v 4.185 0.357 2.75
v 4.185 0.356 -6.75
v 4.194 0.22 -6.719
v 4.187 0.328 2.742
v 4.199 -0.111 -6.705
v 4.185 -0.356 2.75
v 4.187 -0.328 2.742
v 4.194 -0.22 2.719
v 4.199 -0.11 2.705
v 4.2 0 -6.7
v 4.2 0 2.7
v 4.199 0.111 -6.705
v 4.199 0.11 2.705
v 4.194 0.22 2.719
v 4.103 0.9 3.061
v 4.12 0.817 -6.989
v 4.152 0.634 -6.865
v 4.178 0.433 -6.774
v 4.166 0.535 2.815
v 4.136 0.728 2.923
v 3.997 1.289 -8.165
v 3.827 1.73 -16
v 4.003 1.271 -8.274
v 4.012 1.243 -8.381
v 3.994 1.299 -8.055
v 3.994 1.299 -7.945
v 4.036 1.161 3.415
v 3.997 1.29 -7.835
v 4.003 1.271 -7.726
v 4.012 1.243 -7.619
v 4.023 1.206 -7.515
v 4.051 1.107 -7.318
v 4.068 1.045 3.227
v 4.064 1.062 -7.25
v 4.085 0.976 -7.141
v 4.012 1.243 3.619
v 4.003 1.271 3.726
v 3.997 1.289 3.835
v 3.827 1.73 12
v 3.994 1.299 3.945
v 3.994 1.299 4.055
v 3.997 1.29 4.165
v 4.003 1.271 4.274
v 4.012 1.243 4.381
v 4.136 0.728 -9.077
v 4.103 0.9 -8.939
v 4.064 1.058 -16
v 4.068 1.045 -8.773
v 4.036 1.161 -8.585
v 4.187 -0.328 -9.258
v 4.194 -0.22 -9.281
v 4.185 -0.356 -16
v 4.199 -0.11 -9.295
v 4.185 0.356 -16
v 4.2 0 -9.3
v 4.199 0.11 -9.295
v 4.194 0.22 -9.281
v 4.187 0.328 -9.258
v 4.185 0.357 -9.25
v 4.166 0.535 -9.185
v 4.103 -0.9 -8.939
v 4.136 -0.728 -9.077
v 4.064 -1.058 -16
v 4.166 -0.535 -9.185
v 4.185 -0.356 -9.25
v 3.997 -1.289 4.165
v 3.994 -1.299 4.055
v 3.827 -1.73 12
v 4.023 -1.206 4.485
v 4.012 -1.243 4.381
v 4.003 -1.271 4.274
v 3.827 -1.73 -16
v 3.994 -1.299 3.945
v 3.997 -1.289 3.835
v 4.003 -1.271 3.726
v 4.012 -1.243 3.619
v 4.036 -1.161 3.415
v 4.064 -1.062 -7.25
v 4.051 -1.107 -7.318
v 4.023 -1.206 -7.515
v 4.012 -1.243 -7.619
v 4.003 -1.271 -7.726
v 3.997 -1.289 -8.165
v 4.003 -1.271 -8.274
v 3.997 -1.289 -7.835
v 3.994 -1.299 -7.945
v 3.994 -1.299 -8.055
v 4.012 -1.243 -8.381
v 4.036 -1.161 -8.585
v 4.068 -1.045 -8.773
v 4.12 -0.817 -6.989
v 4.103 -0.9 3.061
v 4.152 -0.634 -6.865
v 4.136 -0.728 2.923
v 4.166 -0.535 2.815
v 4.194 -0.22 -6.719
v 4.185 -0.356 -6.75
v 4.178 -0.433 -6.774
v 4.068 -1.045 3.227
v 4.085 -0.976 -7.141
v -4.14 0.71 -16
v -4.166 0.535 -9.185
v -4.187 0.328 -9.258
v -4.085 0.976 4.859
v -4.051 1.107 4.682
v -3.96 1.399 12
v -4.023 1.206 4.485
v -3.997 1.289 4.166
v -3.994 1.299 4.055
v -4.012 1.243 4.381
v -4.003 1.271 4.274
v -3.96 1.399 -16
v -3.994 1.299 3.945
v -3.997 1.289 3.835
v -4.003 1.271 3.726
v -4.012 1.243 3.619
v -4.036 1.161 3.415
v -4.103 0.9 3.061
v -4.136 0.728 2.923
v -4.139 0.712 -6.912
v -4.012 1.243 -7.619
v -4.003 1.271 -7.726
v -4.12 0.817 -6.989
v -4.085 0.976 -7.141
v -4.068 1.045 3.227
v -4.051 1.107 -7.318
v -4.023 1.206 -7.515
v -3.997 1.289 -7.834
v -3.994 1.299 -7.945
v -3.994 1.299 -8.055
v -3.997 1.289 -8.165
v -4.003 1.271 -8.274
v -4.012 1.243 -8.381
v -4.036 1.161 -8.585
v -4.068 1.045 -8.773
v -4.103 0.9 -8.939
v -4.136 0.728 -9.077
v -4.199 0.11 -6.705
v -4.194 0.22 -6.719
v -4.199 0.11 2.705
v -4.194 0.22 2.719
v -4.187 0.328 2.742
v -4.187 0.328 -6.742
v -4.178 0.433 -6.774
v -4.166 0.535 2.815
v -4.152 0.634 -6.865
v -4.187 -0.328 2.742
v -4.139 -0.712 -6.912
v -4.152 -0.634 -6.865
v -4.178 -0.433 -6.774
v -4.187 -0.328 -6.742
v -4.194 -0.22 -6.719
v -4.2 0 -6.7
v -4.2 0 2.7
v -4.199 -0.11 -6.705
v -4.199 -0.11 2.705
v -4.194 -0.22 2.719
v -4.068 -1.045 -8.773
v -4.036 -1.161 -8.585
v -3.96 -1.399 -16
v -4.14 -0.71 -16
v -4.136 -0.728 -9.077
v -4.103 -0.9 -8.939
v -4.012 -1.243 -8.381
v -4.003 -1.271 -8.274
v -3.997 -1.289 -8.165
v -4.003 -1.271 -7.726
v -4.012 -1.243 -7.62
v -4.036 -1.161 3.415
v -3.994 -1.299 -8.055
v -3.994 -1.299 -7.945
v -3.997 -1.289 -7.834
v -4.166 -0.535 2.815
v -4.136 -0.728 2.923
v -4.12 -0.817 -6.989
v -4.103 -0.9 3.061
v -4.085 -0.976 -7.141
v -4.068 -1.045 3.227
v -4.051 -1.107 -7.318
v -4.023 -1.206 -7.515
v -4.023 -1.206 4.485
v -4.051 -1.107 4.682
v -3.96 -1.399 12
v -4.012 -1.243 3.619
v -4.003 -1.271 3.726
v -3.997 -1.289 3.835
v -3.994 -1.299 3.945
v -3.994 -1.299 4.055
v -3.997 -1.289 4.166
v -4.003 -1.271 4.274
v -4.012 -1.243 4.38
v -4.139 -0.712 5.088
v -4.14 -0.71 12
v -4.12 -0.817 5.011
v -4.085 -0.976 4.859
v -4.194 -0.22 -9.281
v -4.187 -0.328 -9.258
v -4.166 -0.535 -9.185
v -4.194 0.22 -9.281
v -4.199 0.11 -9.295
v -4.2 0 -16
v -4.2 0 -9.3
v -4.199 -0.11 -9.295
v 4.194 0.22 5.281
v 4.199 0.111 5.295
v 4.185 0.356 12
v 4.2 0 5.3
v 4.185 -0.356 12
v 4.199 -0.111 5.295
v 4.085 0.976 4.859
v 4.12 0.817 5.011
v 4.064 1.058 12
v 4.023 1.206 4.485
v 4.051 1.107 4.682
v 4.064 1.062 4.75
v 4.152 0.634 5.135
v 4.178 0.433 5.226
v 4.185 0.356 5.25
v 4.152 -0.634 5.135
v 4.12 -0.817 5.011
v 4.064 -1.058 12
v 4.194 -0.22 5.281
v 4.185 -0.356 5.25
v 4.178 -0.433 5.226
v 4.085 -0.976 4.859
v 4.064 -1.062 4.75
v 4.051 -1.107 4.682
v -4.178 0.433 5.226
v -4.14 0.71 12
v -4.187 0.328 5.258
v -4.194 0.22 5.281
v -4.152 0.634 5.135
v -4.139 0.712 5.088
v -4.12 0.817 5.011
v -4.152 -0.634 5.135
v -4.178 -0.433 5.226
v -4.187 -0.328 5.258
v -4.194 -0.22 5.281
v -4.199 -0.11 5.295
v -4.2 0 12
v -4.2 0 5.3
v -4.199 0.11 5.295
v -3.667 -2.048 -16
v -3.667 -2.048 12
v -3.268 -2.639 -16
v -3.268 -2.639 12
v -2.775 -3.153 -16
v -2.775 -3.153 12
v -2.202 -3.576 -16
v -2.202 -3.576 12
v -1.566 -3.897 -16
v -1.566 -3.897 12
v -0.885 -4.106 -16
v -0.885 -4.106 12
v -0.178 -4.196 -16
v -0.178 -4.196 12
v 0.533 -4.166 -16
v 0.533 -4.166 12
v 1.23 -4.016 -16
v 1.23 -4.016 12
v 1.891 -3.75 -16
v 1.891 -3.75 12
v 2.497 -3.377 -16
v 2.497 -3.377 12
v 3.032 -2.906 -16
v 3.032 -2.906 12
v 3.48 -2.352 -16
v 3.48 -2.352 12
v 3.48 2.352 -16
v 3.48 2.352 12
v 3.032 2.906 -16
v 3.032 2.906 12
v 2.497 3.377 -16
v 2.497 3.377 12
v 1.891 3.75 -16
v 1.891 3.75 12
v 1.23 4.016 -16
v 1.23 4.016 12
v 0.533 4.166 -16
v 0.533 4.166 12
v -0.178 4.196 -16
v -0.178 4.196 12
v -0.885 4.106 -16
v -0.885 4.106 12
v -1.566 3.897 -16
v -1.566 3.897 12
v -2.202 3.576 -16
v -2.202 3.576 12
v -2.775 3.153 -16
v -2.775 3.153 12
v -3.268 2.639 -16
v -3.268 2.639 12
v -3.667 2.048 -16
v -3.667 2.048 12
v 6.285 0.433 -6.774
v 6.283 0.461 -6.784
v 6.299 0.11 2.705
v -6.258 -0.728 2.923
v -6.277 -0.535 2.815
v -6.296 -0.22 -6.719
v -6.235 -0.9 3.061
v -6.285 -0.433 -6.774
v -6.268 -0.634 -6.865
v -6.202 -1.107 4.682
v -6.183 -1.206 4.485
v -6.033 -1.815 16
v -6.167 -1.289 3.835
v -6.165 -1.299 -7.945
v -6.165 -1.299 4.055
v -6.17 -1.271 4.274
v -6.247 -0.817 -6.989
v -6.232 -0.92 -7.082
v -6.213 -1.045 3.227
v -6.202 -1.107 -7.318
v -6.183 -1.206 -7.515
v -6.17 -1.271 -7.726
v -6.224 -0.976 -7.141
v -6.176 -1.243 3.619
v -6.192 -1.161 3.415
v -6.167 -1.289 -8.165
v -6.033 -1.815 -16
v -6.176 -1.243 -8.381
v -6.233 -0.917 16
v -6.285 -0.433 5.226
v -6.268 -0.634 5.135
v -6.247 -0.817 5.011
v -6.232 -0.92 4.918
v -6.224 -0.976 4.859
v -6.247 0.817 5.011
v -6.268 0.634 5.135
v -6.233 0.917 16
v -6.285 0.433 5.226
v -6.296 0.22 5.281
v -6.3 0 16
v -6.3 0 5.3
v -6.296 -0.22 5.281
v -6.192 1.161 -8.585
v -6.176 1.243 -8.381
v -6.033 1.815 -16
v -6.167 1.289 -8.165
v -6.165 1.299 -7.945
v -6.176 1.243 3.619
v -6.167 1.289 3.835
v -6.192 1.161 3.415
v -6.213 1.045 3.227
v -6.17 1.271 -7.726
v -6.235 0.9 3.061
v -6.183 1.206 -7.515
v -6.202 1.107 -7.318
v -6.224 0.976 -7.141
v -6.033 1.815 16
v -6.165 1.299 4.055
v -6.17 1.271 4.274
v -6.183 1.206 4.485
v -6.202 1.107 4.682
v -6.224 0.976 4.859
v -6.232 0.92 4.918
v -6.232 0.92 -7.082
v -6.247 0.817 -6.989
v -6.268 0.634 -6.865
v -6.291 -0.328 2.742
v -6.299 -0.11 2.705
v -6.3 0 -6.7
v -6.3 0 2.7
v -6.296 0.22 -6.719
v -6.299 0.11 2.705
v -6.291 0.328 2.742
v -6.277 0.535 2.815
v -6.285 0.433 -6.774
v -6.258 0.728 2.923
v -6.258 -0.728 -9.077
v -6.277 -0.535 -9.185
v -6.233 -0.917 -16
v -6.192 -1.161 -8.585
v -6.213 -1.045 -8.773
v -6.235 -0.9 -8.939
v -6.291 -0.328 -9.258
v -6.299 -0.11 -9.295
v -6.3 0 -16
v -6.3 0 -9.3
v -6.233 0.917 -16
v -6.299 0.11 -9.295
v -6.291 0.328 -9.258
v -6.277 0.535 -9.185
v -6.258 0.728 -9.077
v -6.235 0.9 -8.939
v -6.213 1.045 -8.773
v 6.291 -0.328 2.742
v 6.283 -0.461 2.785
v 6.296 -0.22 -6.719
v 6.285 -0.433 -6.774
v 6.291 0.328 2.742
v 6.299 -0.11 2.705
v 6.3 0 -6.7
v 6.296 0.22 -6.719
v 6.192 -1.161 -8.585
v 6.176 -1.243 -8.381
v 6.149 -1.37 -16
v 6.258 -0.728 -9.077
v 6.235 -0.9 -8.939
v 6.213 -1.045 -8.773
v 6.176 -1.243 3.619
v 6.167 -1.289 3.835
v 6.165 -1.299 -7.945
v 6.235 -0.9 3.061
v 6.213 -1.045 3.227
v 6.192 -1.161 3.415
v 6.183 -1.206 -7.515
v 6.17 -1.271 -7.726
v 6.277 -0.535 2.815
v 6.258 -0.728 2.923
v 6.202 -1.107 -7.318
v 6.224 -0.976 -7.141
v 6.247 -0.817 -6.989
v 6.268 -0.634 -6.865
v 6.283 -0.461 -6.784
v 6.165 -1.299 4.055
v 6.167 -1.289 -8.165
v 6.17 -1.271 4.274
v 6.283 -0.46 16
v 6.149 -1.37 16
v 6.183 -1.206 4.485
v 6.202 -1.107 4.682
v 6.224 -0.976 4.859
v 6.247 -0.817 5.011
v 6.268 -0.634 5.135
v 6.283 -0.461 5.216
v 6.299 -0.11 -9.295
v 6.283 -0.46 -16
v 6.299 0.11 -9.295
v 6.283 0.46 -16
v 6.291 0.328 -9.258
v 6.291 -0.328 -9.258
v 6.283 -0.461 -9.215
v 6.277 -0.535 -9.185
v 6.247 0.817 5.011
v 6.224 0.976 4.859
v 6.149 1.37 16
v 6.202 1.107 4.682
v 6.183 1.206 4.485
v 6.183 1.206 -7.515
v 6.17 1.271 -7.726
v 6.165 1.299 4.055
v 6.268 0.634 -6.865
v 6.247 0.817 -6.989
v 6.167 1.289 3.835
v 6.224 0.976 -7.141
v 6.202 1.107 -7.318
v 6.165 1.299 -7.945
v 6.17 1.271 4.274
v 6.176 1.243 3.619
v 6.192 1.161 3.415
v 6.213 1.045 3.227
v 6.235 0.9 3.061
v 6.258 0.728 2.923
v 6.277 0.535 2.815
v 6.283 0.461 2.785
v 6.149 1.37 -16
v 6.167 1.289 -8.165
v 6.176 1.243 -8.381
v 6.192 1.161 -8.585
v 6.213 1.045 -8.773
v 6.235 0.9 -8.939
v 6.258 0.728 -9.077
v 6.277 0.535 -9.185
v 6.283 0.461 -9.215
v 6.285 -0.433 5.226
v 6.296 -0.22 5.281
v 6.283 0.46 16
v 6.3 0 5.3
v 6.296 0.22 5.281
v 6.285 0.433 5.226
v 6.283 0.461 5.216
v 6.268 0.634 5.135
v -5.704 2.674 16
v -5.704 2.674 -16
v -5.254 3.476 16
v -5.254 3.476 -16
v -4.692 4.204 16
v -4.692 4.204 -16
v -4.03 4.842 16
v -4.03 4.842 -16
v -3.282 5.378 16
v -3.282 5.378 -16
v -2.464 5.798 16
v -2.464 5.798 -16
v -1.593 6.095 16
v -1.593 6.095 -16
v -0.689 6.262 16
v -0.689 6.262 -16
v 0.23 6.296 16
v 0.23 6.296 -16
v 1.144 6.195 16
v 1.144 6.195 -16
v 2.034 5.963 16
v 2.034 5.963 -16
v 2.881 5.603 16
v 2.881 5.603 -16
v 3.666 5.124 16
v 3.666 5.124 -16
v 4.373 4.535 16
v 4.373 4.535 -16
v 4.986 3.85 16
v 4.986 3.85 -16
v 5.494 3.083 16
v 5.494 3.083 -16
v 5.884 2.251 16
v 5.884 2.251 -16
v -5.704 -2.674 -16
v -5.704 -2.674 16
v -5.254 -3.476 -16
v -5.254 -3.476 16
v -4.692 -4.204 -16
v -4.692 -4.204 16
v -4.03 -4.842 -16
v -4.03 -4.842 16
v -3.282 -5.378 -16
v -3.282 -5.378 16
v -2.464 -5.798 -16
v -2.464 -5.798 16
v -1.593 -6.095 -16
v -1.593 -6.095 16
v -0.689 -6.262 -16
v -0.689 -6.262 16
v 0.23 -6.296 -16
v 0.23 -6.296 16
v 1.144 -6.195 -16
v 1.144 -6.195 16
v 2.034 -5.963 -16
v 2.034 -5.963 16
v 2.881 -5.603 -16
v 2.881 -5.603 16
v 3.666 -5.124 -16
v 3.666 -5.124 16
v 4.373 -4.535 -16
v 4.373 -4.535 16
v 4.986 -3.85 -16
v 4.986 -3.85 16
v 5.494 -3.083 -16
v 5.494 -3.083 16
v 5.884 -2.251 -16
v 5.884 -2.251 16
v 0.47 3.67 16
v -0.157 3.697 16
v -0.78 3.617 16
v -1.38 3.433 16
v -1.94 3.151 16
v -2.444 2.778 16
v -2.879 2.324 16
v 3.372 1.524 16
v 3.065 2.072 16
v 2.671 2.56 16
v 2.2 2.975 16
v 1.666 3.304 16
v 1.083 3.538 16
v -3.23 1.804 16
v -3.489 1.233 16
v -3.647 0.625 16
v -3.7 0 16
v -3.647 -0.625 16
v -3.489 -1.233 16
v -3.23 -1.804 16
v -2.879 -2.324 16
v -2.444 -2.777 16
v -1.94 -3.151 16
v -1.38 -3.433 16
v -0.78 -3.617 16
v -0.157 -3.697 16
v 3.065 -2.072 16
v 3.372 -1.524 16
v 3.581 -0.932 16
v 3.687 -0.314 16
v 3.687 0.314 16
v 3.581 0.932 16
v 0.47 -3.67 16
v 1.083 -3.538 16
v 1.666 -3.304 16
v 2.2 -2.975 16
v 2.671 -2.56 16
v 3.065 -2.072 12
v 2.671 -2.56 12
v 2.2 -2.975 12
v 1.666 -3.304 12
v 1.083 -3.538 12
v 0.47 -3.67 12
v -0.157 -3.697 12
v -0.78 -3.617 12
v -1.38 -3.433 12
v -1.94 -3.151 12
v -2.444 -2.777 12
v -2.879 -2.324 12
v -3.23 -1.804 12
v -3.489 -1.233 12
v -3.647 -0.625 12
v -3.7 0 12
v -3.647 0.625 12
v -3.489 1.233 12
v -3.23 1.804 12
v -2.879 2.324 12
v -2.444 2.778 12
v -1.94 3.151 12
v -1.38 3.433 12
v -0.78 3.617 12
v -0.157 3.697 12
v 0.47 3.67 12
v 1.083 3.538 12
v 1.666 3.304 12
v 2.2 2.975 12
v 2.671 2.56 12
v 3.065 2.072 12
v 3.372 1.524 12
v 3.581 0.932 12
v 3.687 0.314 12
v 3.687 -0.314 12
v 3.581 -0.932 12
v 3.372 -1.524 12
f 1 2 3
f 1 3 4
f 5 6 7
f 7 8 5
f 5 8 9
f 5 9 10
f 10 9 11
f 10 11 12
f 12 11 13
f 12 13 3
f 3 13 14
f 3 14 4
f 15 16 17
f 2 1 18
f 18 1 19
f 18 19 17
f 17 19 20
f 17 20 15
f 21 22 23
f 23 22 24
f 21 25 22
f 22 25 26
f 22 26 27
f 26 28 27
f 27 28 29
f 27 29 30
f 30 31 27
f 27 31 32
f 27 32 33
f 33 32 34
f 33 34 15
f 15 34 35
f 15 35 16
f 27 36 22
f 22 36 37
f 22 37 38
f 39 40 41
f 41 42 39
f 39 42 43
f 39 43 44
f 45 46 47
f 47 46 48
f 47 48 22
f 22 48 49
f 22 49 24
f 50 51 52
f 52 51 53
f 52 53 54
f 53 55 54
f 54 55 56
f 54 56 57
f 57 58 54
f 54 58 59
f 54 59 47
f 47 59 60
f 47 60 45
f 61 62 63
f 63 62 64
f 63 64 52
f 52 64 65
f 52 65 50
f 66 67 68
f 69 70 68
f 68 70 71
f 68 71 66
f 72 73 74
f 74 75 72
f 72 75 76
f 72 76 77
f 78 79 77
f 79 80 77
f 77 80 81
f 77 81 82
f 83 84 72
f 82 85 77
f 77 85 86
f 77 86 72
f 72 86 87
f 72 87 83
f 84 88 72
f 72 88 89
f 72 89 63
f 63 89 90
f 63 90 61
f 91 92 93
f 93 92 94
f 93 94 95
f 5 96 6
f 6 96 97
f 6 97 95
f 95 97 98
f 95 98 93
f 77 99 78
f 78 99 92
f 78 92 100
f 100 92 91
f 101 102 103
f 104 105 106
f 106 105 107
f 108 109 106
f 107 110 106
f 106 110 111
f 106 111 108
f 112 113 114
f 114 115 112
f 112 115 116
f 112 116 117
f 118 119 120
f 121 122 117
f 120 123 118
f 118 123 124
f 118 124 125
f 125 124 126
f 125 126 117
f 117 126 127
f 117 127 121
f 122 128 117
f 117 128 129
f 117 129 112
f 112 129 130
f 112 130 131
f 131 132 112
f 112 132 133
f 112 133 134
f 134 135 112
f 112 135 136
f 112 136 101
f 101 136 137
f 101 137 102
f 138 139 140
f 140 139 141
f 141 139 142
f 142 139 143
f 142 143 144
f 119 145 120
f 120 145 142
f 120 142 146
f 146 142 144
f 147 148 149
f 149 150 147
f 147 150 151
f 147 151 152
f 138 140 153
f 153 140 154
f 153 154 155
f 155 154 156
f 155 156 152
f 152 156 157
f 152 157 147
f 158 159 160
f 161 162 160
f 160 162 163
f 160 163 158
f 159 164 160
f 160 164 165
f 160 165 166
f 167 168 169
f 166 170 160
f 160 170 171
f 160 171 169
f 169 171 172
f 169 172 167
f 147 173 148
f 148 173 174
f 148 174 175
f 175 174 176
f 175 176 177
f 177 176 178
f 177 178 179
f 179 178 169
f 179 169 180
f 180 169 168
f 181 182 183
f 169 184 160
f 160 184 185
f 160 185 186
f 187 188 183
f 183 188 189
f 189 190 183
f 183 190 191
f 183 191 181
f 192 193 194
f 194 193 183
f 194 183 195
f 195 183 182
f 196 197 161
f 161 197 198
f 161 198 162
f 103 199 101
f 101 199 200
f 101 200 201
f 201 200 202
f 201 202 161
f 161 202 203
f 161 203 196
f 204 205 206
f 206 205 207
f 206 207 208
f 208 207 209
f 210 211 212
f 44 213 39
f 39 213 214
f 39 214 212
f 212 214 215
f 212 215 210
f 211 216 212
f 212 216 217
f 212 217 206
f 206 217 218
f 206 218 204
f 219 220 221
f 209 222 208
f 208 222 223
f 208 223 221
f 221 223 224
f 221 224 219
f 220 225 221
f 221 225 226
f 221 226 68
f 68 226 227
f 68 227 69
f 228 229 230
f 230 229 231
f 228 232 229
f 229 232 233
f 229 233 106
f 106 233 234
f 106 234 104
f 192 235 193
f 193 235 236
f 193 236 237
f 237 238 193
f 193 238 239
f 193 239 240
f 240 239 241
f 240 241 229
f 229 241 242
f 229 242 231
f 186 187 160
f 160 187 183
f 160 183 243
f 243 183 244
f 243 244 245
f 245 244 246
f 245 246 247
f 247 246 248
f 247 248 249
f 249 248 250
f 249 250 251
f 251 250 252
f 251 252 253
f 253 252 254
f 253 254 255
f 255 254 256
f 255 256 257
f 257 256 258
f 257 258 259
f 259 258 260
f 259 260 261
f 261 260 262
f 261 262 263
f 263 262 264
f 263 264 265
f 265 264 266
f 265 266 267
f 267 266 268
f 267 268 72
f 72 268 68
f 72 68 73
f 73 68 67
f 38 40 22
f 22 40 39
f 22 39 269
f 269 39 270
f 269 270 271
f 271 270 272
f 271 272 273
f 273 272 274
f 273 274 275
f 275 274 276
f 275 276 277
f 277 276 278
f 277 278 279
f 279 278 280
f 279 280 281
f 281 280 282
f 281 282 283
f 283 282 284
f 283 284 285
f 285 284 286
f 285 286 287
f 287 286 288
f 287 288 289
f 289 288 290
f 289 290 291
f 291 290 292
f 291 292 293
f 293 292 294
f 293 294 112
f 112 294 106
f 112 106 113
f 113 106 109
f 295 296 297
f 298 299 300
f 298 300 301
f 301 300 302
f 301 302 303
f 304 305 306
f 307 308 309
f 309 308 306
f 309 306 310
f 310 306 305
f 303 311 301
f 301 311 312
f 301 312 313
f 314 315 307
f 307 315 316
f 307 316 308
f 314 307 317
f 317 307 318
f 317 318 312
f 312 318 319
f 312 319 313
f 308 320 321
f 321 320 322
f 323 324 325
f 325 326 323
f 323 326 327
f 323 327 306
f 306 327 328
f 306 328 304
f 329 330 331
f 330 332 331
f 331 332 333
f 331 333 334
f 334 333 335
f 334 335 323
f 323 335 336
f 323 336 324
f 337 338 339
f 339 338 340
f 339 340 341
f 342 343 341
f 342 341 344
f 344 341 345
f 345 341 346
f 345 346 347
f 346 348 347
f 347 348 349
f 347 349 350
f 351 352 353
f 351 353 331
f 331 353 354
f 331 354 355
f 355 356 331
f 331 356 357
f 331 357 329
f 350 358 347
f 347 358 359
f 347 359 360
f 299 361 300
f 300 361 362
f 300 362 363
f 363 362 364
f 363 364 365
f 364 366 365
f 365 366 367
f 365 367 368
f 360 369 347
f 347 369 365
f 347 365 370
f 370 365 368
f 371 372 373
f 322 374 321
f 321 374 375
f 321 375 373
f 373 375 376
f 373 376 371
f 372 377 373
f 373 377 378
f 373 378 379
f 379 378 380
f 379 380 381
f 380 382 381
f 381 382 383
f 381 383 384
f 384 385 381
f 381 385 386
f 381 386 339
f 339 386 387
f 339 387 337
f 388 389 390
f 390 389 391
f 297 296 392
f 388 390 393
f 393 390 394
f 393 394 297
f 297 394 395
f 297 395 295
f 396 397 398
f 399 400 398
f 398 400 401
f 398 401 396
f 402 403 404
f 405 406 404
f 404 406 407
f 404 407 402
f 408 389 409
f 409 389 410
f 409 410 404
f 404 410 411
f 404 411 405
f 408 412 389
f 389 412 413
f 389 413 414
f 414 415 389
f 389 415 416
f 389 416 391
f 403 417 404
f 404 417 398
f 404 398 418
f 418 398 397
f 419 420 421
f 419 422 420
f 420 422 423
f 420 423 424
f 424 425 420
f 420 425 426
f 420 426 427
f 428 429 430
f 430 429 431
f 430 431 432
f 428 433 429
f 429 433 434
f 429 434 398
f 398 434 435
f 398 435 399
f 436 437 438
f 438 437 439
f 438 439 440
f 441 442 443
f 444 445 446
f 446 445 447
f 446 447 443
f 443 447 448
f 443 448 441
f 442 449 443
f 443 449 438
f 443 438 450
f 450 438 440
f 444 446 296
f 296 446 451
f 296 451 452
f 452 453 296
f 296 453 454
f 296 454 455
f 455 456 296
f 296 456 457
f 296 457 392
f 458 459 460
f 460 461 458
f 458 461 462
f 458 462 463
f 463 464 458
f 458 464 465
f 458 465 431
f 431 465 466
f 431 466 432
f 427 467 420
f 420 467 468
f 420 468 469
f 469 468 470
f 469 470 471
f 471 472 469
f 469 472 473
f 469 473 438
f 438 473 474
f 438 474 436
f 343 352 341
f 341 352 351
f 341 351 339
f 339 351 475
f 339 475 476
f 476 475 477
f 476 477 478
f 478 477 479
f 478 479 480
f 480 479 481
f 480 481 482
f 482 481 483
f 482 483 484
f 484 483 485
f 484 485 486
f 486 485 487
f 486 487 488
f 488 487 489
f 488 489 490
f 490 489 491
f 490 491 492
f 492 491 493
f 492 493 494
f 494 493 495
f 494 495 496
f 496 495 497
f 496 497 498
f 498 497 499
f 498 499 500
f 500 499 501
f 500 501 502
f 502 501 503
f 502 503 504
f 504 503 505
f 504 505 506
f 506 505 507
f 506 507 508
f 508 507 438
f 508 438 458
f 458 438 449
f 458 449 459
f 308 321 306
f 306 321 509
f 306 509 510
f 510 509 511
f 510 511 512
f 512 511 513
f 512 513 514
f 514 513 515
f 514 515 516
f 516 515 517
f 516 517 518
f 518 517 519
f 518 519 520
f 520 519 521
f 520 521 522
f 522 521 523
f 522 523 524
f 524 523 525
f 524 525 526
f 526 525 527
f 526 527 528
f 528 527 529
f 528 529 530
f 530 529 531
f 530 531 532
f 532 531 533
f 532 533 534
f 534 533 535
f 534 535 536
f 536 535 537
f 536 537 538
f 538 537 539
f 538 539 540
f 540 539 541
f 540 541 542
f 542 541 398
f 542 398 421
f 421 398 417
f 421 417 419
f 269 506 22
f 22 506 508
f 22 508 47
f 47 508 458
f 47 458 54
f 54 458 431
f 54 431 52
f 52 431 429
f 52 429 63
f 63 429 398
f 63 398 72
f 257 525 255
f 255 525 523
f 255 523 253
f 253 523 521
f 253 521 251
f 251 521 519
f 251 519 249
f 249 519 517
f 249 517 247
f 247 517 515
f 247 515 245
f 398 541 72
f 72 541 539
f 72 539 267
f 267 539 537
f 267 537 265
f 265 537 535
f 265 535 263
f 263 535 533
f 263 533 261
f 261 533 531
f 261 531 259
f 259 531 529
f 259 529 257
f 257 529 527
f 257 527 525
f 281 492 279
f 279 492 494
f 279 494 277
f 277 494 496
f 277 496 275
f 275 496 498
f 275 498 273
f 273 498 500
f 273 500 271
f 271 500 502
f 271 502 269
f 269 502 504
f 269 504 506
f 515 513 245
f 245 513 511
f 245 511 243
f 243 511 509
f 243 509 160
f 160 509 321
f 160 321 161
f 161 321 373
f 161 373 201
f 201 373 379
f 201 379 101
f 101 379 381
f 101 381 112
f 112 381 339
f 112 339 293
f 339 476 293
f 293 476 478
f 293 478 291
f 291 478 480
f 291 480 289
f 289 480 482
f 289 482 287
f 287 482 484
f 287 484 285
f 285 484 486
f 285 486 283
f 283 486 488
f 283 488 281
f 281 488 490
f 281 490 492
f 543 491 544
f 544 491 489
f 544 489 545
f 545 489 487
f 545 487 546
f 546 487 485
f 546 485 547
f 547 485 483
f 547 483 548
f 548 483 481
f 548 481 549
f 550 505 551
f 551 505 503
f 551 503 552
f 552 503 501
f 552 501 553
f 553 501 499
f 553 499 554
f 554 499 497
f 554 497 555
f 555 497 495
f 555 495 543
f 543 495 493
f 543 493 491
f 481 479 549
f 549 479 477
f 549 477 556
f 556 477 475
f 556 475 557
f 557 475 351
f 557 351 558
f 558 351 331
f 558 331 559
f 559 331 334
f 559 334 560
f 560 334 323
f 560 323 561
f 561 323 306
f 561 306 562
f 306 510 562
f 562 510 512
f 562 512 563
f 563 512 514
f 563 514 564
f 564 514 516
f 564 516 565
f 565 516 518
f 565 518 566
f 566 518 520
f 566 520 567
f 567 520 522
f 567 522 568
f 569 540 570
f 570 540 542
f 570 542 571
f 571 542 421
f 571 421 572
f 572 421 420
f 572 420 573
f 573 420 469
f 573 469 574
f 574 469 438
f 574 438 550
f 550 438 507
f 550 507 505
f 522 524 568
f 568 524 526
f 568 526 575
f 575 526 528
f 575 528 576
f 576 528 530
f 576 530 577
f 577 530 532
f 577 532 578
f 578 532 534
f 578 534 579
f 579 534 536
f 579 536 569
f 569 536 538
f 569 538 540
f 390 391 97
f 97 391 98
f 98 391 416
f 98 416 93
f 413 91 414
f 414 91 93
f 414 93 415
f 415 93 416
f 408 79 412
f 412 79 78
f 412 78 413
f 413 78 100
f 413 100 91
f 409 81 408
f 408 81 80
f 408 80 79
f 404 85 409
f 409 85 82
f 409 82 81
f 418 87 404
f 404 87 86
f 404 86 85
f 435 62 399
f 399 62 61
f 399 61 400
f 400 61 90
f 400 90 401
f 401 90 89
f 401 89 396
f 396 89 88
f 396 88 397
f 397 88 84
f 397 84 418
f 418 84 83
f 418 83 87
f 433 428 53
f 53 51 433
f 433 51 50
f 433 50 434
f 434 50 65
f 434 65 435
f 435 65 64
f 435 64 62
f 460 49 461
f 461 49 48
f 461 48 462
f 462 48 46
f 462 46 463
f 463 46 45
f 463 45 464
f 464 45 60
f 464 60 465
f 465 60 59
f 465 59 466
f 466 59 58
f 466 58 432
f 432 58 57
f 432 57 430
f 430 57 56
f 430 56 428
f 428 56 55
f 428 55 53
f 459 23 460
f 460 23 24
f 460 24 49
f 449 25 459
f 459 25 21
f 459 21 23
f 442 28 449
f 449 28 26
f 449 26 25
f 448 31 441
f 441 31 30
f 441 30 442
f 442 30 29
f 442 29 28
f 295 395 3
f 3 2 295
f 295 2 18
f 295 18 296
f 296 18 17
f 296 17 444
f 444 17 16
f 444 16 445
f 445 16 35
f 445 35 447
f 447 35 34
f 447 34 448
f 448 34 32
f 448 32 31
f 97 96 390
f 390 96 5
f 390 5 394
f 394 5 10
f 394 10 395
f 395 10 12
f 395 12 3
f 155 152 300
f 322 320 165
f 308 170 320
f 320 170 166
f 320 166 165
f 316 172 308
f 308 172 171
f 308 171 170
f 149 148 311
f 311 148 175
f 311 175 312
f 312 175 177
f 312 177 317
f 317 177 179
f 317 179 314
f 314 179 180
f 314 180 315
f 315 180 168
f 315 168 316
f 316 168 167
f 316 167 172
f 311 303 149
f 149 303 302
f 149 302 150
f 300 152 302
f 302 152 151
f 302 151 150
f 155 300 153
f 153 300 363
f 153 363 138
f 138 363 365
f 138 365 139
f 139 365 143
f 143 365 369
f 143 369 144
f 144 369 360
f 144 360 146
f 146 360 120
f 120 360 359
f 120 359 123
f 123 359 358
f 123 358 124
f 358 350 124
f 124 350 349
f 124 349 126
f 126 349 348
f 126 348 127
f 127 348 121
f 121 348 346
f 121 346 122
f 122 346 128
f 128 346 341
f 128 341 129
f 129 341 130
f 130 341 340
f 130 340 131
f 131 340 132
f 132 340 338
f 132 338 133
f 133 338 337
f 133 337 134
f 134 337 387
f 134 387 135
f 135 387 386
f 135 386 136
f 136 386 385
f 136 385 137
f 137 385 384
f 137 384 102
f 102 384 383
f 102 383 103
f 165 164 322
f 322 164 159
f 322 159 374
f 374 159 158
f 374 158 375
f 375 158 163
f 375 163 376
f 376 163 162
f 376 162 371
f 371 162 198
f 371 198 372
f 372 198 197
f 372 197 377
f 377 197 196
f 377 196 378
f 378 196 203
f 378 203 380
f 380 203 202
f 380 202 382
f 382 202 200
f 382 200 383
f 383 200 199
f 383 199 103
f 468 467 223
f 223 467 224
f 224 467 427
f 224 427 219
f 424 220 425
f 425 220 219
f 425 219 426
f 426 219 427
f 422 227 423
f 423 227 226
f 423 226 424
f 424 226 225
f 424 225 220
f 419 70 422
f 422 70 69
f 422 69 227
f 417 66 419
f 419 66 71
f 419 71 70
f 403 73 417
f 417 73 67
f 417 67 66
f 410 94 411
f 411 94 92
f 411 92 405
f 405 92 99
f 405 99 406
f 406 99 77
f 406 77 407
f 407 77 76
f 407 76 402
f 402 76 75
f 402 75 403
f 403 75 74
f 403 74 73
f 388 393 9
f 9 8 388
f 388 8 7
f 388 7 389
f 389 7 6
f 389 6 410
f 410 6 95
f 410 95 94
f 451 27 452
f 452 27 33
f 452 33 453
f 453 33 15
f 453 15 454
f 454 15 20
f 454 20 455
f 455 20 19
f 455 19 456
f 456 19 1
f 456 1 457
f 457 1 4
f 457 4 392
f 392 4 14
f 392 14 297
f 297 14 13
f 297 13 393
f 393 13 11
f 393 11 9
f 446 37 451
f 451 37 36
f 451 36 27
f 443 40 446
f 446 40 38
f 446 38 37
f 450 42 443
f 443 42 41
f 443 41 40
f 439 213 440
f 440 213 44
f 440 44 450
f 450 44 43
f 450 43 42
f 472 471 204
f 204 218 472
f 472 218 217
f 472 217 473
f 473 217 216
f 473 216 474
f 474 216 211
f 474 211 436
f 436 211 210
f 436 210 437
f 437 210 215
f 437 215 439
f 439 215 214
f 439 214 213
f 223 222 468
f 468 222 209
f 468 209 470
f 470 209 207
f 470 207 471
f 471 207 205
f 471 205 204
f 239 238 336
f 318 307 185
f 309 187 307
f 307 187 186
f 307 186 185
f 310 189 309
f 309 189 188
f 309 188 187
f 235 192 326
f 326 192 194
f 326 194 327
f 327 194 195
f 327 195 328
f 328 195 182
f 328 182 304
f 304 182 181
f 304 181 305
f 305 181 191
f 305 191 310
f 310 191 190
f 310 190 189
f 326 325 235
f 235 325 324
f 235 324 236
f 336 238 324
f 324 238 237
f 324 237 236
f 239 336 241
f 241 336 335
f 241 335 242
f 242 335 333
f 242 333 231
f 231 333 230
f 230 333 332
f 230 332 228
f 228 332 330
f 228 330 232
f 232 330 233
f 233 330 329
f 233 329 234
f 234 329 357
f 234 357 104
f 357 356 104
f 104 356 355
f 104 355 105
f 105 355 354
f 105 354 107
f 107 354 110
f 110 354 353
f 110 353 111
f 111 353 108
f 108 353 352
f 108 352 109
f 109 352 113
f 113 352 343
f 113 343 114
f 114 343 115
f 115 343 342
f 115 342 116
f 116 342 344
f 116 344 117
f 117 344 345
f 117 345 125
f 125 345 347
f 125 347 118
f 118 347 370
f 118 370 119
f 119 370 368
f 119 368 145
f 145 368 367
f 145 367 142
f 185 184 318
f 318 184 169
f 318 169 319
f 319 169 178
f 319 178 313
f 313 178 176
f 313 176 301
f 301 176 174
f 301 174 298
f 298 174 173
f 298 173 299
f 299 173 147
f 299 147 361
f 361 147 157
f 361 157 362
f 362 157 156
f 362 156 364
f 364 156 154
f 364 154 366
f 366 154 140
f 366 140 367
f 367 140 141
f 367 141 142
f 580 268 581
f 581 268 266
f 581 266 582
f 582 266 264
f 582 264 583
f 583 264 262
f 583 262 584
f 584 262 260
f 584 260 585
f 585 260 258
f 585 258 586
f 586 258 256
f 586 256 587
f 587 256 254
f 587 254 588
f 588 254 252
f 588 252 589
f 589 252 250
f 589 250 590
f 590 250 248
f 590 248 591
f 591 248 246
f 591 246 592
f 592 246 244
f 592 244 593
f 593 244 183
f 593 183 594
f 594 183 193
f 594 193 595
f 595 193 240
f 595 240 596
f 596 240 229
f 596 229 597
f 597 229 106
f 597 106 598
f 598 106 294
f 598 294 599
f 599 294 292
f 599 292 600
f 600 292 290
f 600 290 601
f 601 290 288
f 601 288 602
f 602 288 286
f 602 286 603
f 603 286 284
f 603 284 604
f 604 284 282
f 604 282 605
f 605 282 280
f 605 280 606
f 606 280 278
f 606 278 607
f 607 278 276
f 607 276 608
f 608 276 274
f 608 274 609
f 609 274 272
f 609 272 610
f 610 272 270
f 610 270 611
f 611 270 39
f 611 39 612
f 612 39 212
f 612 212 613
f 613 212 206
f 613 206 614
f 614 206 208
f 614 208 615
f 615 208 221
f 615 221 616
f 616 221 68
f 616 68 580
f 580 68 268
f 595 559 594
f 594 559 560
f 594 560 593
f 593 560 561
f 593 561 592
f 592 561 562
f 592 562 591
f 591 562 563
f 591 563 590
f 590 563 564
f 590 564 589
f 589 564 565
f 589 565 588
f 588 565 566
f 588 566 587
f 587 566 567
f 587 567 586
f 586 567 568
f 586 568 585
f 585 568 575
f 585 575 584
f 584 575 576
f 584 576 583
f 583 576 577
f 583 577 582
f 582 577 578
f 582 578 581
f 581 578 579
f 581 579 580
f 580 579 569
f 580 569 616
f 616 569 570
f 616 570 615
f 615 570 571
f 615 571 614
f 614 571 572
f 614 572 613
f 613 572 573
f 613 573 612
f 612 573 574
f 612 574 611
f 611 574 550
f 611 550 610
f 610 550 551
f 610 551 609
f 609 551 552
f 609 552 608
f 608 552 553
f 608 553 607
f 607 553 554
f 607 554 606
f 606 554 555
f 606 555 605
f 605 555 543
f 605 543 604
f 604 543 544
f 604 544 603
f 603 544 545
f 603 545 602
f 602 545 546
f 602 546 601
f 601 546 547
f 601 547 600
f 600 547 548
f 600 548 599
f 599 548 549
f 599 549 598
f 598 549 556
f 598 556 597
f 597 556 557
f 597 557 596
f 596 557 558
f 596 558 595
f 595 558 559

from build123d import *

# Parameters (mm, degrees)
BOSS_EXTRUDE1_DEPTH      = 16
BOSS_EXTRUDE1_DEPTH_BACK = 16
SKETCH1_R                = 6.3
SKETCH1_R_2              = 4.2
CUT_EXTRUDE1_DEPTH       = 14
CUT_EXTRUDE1_DEPTH_BACK  = 10
SKETCH2_R                = 1.3
SKETCH3_R                = 4.2
SKETCH3_R_2              = 3.7
BOSS_EXTRUDE2_DEPTH      = 4


with BuildPart() as part:
    # Sketch1 → Boss-Extrude1 (new, two sides: drawn at the far end of the back side and taken through both)
    with BuildSketch(Plane.XY.offset(-BOSS_EXTRUDE1_DEPTH_BACK)):
        Circle(SKETCH1_R)
        Circle(SKETCH1_R_2, mode=Mode.SUBTRACT)
    extrude(amount=BOSS_EXTRUDE1_DEPTH + BOSS_EXTRUDE1_DEPTH_BACK)

    # Sketch2 → Cut-Extrude1 (cut, two sides: drawn at the far end of the back side and taken through both)
    with BuildSketch(Plane(origin=(0, 0, 0), x_dir=(0, 0, -1), z_dir=(1, 0, 0)).offset(-CUT_EXTRUDE1_DEPTH_BACK)):
        with Locations((-4, 0)):
            Circle(SKETCH2_R)
        with Locations((8, 0)):
            Circle(SKETCH2_R)
    extrude(amount=CUT_EXTRUDE1_DEPTH + CUT_EXTRUDE1_DEPTH_BACK, mode=Mode.SUBTRACT)

    # Sketch3 → Boss-Extrude2 (add)
    with BuildSketch(Plane.XY.offset(16)):
        Circle(SKETCH3_R)
        Circle(SKETCH3_R_2, mode=Mode.SUBTRACT)
    extrude(amount=-BOSS_EXTRUDE2_DEPTH)


solid = part.part
